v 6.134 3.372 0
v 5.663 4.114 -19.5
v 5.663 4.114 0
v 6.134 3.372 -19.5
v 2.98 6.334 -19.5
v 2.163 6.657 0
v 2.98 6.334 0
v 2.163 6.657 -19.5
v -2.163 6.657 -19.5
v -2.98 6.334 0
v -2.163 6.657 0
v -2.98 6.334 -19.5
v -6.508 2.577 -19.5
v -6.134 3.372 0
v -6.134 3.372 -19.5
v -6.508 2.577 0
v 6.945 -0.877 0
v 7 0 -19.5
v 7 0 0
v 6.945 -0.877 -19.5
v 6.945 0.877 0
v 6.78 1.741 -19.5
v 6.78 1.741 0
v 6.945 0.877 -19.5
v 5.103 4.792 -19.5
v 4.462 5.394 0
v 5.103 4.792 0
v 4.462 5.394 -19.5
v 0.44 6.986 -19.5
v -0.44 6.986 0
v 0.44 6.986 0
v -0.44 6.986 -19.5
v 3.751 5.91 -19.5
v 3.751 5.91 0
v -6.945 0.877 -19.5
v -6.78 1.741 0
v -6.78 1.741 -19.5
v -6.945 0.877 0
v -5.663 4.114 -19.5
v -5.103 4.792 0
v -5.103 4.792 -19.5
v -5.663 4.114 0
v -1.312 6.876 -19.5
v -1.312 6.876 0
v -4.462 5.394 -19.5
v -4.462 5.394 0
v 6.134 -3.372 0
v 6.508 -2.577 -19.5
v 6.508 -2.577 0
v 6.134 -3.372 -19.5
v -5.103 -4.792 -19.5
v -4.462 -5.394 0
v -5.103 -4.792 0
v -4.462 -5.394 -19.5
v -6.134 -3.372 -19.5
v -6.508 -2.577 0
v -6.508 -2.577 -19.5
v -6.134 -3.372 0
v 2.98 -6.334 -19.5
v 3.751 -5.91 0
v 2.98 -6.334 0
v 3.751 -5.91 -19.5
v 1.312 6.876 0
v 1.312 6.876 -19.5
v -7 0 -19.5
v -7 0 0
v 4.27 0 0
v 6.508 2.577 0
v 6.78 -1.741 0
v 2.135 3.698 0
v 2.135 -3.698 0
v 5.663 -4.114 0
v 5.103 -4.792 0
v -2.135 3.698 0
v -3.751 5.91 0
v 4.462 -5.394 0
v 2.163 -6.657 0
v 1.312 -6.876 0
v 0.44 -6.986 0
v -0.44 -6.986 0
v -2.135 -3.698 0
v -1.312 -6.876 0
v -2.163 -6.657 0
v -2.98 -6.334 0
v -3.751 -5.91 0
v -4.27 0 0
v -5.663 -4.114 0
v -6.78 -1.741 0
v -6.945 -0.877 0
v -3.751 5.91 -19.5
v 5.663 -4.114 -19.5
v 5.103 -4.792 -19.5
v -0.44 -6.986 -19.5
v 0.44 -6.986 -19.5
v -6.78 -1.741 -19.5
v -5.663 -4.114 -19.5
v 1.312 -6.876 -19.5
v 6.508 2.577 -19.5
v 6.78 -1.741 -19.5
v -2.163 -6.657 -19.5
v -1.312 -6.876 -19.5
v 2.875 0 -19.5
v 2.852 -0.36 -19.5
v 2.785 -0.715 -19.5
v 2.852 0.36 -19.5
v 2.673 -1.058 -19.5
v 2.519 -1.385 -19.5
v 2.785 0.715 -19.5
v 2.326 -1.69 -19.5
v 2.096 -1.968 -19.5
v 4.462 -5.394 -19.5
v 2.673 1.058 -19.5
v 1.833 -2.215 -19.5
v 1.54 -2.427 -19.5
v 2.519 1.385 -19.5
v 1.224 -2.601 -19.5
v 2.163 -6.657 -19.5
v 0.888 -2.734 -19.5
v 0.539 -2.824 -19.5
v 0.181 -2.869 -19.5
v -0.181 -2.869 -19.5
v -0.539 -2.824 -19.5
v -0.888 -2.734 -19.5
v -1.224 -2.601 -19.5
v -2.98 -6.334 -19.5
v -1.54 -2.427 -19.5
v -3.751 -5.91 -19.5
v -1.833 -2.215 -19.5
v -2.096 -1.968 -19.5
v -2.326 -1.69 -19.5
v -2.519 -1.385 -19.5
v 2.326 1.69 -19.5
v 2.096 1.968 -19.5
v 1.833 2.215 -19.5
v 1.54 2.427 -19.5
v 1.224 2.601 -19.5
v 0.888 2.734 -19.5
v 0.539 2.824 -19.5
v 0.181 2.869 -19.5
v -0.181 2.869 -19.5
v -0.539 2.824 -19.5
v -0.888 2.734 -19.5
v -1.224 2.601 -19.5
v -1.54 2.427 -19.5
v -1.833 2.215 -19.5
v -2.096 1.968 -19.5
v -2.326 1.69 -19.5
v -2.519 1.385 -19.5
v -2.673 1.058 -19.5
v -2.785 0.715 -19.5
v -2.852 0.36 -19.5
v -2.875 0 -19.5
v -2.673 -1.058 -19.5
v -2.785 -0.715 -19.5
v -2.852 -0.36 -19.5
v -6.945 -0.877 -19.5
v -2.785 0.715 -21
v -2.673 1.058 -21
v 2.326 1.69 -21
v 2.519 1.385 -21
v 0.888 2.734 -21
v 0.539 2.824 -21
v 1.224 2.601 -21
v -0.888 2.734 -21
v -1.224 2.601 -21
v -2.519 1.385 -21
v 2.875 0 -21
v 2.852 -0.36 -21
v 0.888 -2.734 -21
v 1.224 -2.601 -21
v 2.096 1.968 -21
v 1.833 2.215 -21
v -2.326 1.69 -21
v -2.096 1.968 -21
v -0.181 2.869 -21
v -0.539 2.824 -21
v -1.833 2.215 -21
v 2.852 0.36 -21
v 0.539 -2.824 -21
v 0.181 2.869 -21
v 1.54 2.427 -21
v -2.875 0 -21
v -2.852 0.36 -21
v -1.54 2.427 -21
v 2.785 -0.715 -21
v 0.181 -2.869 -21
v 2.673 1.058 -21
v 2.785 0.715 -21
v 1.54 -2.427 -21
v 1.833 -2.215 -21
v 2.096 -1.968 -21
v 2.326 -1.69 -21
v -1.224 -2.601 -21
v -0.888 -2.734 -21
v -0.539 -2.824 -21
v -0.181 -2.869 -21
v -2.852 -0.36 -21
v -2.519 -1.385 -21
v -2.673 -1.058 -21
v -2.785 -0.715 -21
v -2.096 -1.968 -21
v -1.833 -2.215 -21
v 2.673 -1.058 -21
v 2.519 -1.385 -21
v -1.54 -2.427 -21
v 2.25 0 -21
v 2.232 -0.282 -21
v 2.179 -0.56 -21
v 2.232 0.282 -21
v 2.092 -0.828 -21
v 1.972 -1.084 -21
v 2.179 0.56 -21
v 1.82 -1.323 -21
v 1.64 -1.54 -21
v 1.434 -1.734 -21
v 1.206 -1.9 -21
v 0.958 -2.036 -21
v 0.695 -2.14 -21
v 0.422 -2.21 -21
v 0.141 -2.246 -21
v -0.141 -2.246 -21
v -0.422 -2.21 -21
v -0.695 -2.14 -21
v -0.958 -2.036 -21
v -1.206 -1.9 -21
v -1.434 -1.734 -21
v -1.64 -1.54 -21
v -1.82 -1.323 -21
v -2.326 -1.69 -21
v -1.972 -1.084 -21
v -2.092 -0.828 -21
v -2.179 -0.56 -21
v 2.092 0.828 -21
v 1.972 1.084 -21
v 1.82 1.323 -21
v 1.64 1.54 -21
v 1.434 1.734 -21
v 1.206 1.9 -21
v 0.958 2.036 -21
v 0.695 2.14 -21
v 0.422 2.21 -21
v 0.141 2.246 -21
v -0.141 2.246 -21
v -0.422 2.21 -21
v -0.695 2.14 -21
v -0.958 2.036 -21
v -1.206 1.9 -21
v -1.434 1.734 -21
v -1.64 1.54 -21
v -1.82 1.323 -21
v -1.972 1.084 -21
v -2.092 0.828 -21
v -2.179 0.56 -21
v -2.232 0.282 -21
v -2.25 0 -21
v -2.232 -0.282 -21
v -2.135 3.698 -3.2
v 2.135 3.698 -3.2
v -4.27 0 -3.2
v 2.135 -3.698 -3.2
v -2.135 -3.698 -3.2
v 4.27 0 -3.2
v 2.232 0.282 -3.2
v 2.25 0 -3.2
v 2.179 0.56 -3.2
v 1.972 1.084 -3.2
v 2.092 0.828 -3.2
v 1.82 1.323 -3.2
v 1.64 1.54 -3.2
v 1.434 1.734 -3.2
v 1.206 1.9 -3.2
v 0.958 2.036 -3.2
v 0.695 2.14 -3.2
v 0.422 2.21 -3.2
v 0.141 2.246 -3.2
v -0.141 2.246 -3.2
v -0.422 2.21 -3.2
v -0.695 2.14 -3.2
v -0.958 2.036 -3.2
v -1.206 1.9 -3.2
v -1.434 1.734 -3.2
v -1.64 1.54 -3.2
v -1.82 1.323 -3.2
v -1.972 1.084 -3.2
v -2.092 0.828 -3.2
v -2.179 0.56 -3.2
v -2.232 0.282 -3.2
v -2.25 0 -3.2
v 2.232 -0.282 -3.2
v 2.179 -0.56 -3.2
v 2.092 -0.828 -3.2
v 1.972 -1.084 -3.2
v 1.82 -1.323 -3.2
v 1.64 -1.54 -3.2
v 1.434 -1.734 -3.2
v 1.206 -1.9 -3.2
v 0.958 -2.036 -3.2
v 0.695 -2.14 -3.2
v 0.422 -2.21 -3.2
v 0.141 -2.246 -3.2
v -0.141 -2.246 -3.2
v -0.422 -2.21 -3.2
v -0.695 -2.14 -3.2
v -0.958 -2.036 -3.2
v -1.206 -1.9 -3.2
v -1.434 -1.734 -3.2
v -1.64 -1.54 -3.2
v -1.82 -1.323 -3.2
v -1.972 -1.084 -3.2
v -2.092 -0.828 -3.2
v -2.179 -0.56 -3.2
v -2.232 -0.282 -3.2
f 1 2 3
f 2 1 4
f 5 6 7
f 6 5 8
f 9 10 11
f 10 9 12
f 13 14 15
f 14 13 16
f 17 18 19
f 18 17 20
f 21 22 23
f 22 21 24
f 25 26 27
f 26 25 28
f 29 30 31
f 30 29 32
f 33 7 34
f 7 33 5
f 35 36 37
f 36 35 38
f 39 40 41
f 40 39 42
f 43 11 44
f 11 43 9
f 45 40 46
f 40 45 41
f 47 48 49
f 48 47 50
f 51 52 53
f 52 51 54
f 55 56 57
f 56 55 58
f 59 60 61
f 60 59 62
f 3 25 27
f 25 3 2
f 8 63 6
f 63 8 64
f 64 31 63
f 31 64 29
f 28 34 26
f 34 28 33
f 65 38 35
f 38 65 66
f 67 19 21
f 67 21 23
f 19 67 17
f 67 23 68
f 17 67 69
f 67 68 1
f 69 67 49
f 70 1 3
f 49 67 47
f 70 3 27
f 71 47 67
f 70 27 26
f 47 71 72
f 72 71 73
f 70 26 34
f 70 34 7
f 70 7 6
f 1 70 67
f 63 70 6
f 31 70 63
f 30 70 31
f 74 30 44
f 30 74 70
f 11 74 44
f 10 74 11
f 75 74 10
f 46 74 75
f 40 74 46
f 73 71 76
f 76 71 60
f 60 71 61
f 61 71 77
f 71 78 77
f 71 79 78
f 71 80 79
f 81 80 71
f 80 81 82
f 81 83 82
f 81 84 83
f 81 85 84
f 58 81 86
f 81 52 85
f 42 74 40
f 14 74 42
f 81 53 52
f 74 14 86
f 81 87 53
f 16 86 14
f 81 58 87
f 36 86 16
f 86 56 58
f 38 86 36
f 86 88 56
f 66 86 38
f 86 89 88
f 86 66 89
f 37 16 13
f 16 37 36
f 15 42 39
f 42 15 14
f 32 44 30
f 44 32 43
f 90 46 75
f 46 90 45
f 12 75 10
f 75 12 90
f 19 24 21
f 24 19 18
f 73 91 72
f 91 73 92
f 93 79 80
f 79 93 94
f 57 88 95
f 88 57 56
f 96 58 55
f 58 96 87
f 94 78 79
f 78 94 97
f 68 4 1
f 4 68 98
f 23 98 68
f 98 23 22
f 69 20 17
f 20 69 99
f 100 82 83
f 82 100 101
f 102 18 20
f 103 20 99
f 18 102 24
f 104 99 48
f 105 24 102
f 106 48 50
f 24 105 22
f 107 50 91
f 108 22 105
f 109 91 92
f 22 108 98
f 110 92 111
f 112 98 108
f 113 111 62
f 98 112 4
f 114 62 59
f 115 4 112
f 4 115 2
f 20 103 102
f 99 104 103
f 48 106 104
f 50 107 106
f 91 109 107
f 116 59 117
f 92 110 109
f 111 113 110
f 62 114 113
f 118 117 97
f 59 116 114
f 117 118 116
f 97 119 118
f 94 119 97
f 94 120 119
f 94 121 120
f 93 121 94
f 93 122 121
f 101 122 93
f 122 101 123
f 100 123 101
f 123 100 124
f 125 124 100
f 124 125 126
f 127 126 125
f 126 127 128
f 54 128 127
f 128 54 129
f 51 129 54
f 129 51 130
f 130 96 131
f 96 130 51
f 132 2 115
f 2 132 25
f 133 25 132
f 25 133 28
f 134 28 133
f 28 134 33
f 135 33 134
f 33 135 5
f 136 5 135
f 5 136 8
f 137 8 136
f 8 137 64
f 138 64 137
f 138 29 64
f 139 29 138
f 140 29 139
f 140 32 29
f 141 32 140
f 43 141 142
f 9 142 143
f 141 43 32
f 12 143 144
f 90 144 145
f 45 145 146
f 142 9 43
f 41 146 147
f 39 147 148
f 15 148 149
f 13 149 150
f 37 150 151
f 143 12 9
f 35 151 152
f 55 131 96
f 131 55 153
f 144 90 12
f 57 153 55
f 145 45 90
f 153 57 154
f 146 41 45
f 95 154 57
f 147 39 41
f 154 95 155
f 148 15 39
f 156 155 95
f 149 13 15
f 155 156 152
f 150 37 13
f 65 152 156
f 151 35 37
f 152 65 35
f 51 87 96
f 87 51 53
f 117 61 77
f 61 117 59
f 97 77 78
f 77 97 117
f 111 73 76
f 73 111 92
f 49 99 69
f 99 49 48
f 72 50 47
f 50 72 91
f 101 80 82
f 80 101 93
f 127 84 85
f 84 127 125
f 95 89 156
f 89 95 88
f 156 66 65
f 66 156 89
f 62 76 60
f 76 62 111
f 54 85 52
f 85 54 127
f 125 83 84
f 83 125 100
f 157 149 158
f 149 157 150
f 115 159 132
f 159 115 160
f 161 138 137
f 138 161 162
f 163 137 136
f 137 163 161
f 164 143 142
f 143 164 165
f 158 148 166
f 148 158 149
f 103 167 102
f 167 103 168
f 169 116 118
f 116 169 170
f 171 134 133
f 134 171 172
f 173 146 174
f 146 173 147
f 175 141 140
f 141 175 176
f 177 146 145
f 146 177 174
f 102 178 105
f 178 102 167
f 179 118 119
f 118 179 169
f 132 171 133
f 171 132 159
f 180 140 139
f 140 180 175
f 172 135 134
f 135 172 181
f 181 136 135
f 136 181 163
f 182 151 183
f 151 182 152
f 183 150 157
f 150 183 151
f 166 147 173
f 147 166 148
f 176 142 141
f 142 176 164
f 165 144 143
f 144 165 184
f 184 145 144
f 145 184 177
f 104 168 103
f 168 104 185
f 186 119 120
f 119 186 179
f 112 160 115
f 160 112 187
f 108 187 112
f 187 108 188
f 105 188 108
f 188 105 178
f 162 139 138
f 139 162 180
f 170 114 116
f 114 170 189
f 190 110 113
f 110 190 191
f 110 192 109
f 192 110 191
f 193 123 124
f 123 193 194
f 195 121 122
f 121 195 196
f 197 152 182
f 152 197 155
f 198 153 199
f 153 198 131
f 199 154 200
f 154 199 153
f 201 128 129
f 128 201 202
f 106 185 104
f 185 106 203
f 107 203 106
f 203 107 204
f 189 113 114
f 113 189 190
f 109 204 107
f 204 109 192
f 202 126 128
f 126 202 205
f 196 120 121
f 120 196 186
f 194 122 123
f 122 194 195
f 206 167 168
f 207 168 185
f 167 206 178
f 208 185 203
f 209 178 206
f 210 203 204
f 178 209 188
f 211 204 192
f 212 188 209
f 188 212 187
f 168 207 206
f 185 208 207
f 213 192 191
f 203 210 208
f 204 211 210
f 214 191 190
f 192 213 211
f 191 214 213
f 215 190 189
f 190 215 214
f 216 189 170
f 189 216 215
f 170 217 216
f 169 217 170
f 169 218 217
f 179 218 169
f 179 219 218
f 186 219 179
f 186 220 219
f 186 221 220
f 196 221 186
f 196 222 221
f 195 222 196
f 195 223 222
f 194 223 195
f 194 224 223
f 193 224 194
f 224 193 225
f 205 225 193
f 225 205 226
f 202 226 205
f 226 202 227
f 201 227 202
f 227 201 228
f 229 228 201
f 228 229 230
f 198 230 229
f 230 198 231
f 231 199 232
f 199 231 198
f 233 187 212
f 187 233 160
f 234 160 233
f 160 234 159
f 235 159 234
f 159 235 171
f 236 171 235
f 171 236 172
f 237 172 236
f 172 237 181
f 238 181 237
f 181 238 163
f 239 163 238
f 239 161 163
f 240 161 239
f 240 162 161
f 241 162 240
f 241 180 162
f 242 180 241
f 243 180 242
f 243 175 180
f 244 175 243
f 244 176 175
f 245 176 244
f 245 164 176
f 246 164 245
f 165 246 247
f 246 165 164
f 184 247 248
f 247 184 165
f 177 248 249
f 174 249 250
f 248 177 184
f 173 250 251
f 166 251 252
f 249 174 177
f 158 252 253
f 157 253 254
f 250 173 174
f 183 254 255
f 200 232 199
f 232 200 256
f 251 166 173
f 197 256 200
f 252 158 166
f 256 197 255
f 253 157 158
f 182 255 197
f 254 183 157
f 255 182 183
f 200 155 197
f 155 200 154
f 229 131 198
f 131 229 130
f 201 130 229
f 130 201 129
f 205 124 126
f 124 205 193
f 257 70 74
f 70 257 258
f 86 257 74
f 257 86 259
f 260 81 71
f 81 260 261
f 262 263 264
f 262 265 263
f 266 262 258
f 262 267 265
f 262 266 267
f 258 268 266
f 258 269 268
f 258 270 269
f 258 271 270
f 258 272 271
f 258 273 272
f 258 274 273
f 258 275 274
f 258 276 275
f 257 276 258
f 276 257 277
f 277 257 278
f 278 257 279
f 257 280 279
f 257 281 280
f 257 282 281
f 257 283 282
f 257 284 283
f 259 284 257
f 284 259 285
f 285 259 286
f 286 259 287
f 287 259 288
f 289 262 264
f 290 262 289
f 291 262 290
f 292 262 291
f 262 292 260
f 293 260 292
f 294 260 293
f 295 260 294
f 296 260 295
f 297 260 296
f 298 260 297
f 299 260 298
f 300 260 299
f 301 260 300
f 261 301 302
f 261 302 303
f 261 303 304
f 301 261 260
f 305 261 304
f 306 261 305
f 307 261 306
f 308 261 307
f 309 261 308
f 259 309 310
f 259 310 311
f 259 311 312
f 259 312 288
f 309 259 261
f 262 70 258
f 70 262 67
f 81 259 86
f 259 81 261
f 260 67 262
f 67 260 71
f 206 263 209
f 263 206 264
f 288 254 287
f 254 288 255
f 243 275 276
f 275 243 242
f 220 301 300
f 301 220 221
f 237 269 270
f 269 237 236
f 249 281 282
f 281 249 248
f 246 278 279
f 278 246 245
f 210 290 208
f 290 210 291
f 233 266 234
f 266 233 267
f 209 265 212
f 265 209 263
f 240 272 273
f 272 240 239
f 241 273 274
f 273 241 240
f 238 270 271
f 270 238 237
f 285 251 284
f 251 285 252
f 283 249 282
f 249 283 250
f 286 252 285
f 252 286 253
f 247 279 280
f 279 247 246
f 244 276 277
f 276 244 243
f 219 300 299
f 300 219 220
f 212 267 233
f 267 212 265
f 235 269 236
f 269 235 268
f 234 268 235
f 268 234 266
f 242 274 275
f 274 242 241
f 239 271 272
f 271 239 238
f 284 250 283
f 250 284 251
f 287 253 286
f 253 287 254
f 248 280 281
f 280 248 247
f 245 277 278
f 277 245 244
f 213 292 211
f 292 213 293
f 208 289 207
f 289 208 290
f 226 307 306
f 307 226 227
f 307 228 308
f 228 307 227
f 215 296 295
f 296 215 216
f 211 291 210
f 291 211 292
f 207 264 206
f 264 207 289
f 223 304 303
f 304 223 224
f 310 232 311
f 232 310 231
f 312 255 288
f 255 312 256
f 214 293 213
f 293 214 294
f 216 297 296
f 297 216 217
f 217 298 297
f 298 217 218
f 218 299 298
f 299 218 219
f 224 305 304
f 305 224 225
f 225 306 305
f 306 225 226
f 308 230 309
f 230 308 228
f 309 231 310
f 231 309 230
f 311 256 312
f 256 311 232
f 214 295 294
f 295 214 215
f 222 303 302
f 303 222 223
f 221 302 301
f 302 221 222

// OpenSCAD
$fn = 50;

difference() {
	union() {
		translate(v = [0, 0, -19.5]) {
			cylinder(h = 19.5, r = 7.0);
		}
		#translate(v = [0, 0, -21.0]) {
			cylinder(h = 21, r = 2.875);
		}
	}
	union() {
		translate(v = [0, 0, 0]) {
			rotate(a = [0, 0, 0]) {
				difference() {
					union() {
						translate(v = [0, 0, -3.2]) {
							linear_extrude(height = 3.2) {
								polygon(points = [[4.2698, 0.0], [2.1349000000000005, 3.697755269078796], [-2.134899999999999, 3.6977552690787965], [-4.2698, 5.228996902999369e-16], [-2.134900000000002, -3.6977552690787956], [2.1348999999999974, -3.697755269078798]]);
							}
						}
					}
					union();
				}
			}
		}
		#translate(v = [0, 0, -100.0]) {
			cylinder(h = 200, r = 2.25);
		}
	}
}
